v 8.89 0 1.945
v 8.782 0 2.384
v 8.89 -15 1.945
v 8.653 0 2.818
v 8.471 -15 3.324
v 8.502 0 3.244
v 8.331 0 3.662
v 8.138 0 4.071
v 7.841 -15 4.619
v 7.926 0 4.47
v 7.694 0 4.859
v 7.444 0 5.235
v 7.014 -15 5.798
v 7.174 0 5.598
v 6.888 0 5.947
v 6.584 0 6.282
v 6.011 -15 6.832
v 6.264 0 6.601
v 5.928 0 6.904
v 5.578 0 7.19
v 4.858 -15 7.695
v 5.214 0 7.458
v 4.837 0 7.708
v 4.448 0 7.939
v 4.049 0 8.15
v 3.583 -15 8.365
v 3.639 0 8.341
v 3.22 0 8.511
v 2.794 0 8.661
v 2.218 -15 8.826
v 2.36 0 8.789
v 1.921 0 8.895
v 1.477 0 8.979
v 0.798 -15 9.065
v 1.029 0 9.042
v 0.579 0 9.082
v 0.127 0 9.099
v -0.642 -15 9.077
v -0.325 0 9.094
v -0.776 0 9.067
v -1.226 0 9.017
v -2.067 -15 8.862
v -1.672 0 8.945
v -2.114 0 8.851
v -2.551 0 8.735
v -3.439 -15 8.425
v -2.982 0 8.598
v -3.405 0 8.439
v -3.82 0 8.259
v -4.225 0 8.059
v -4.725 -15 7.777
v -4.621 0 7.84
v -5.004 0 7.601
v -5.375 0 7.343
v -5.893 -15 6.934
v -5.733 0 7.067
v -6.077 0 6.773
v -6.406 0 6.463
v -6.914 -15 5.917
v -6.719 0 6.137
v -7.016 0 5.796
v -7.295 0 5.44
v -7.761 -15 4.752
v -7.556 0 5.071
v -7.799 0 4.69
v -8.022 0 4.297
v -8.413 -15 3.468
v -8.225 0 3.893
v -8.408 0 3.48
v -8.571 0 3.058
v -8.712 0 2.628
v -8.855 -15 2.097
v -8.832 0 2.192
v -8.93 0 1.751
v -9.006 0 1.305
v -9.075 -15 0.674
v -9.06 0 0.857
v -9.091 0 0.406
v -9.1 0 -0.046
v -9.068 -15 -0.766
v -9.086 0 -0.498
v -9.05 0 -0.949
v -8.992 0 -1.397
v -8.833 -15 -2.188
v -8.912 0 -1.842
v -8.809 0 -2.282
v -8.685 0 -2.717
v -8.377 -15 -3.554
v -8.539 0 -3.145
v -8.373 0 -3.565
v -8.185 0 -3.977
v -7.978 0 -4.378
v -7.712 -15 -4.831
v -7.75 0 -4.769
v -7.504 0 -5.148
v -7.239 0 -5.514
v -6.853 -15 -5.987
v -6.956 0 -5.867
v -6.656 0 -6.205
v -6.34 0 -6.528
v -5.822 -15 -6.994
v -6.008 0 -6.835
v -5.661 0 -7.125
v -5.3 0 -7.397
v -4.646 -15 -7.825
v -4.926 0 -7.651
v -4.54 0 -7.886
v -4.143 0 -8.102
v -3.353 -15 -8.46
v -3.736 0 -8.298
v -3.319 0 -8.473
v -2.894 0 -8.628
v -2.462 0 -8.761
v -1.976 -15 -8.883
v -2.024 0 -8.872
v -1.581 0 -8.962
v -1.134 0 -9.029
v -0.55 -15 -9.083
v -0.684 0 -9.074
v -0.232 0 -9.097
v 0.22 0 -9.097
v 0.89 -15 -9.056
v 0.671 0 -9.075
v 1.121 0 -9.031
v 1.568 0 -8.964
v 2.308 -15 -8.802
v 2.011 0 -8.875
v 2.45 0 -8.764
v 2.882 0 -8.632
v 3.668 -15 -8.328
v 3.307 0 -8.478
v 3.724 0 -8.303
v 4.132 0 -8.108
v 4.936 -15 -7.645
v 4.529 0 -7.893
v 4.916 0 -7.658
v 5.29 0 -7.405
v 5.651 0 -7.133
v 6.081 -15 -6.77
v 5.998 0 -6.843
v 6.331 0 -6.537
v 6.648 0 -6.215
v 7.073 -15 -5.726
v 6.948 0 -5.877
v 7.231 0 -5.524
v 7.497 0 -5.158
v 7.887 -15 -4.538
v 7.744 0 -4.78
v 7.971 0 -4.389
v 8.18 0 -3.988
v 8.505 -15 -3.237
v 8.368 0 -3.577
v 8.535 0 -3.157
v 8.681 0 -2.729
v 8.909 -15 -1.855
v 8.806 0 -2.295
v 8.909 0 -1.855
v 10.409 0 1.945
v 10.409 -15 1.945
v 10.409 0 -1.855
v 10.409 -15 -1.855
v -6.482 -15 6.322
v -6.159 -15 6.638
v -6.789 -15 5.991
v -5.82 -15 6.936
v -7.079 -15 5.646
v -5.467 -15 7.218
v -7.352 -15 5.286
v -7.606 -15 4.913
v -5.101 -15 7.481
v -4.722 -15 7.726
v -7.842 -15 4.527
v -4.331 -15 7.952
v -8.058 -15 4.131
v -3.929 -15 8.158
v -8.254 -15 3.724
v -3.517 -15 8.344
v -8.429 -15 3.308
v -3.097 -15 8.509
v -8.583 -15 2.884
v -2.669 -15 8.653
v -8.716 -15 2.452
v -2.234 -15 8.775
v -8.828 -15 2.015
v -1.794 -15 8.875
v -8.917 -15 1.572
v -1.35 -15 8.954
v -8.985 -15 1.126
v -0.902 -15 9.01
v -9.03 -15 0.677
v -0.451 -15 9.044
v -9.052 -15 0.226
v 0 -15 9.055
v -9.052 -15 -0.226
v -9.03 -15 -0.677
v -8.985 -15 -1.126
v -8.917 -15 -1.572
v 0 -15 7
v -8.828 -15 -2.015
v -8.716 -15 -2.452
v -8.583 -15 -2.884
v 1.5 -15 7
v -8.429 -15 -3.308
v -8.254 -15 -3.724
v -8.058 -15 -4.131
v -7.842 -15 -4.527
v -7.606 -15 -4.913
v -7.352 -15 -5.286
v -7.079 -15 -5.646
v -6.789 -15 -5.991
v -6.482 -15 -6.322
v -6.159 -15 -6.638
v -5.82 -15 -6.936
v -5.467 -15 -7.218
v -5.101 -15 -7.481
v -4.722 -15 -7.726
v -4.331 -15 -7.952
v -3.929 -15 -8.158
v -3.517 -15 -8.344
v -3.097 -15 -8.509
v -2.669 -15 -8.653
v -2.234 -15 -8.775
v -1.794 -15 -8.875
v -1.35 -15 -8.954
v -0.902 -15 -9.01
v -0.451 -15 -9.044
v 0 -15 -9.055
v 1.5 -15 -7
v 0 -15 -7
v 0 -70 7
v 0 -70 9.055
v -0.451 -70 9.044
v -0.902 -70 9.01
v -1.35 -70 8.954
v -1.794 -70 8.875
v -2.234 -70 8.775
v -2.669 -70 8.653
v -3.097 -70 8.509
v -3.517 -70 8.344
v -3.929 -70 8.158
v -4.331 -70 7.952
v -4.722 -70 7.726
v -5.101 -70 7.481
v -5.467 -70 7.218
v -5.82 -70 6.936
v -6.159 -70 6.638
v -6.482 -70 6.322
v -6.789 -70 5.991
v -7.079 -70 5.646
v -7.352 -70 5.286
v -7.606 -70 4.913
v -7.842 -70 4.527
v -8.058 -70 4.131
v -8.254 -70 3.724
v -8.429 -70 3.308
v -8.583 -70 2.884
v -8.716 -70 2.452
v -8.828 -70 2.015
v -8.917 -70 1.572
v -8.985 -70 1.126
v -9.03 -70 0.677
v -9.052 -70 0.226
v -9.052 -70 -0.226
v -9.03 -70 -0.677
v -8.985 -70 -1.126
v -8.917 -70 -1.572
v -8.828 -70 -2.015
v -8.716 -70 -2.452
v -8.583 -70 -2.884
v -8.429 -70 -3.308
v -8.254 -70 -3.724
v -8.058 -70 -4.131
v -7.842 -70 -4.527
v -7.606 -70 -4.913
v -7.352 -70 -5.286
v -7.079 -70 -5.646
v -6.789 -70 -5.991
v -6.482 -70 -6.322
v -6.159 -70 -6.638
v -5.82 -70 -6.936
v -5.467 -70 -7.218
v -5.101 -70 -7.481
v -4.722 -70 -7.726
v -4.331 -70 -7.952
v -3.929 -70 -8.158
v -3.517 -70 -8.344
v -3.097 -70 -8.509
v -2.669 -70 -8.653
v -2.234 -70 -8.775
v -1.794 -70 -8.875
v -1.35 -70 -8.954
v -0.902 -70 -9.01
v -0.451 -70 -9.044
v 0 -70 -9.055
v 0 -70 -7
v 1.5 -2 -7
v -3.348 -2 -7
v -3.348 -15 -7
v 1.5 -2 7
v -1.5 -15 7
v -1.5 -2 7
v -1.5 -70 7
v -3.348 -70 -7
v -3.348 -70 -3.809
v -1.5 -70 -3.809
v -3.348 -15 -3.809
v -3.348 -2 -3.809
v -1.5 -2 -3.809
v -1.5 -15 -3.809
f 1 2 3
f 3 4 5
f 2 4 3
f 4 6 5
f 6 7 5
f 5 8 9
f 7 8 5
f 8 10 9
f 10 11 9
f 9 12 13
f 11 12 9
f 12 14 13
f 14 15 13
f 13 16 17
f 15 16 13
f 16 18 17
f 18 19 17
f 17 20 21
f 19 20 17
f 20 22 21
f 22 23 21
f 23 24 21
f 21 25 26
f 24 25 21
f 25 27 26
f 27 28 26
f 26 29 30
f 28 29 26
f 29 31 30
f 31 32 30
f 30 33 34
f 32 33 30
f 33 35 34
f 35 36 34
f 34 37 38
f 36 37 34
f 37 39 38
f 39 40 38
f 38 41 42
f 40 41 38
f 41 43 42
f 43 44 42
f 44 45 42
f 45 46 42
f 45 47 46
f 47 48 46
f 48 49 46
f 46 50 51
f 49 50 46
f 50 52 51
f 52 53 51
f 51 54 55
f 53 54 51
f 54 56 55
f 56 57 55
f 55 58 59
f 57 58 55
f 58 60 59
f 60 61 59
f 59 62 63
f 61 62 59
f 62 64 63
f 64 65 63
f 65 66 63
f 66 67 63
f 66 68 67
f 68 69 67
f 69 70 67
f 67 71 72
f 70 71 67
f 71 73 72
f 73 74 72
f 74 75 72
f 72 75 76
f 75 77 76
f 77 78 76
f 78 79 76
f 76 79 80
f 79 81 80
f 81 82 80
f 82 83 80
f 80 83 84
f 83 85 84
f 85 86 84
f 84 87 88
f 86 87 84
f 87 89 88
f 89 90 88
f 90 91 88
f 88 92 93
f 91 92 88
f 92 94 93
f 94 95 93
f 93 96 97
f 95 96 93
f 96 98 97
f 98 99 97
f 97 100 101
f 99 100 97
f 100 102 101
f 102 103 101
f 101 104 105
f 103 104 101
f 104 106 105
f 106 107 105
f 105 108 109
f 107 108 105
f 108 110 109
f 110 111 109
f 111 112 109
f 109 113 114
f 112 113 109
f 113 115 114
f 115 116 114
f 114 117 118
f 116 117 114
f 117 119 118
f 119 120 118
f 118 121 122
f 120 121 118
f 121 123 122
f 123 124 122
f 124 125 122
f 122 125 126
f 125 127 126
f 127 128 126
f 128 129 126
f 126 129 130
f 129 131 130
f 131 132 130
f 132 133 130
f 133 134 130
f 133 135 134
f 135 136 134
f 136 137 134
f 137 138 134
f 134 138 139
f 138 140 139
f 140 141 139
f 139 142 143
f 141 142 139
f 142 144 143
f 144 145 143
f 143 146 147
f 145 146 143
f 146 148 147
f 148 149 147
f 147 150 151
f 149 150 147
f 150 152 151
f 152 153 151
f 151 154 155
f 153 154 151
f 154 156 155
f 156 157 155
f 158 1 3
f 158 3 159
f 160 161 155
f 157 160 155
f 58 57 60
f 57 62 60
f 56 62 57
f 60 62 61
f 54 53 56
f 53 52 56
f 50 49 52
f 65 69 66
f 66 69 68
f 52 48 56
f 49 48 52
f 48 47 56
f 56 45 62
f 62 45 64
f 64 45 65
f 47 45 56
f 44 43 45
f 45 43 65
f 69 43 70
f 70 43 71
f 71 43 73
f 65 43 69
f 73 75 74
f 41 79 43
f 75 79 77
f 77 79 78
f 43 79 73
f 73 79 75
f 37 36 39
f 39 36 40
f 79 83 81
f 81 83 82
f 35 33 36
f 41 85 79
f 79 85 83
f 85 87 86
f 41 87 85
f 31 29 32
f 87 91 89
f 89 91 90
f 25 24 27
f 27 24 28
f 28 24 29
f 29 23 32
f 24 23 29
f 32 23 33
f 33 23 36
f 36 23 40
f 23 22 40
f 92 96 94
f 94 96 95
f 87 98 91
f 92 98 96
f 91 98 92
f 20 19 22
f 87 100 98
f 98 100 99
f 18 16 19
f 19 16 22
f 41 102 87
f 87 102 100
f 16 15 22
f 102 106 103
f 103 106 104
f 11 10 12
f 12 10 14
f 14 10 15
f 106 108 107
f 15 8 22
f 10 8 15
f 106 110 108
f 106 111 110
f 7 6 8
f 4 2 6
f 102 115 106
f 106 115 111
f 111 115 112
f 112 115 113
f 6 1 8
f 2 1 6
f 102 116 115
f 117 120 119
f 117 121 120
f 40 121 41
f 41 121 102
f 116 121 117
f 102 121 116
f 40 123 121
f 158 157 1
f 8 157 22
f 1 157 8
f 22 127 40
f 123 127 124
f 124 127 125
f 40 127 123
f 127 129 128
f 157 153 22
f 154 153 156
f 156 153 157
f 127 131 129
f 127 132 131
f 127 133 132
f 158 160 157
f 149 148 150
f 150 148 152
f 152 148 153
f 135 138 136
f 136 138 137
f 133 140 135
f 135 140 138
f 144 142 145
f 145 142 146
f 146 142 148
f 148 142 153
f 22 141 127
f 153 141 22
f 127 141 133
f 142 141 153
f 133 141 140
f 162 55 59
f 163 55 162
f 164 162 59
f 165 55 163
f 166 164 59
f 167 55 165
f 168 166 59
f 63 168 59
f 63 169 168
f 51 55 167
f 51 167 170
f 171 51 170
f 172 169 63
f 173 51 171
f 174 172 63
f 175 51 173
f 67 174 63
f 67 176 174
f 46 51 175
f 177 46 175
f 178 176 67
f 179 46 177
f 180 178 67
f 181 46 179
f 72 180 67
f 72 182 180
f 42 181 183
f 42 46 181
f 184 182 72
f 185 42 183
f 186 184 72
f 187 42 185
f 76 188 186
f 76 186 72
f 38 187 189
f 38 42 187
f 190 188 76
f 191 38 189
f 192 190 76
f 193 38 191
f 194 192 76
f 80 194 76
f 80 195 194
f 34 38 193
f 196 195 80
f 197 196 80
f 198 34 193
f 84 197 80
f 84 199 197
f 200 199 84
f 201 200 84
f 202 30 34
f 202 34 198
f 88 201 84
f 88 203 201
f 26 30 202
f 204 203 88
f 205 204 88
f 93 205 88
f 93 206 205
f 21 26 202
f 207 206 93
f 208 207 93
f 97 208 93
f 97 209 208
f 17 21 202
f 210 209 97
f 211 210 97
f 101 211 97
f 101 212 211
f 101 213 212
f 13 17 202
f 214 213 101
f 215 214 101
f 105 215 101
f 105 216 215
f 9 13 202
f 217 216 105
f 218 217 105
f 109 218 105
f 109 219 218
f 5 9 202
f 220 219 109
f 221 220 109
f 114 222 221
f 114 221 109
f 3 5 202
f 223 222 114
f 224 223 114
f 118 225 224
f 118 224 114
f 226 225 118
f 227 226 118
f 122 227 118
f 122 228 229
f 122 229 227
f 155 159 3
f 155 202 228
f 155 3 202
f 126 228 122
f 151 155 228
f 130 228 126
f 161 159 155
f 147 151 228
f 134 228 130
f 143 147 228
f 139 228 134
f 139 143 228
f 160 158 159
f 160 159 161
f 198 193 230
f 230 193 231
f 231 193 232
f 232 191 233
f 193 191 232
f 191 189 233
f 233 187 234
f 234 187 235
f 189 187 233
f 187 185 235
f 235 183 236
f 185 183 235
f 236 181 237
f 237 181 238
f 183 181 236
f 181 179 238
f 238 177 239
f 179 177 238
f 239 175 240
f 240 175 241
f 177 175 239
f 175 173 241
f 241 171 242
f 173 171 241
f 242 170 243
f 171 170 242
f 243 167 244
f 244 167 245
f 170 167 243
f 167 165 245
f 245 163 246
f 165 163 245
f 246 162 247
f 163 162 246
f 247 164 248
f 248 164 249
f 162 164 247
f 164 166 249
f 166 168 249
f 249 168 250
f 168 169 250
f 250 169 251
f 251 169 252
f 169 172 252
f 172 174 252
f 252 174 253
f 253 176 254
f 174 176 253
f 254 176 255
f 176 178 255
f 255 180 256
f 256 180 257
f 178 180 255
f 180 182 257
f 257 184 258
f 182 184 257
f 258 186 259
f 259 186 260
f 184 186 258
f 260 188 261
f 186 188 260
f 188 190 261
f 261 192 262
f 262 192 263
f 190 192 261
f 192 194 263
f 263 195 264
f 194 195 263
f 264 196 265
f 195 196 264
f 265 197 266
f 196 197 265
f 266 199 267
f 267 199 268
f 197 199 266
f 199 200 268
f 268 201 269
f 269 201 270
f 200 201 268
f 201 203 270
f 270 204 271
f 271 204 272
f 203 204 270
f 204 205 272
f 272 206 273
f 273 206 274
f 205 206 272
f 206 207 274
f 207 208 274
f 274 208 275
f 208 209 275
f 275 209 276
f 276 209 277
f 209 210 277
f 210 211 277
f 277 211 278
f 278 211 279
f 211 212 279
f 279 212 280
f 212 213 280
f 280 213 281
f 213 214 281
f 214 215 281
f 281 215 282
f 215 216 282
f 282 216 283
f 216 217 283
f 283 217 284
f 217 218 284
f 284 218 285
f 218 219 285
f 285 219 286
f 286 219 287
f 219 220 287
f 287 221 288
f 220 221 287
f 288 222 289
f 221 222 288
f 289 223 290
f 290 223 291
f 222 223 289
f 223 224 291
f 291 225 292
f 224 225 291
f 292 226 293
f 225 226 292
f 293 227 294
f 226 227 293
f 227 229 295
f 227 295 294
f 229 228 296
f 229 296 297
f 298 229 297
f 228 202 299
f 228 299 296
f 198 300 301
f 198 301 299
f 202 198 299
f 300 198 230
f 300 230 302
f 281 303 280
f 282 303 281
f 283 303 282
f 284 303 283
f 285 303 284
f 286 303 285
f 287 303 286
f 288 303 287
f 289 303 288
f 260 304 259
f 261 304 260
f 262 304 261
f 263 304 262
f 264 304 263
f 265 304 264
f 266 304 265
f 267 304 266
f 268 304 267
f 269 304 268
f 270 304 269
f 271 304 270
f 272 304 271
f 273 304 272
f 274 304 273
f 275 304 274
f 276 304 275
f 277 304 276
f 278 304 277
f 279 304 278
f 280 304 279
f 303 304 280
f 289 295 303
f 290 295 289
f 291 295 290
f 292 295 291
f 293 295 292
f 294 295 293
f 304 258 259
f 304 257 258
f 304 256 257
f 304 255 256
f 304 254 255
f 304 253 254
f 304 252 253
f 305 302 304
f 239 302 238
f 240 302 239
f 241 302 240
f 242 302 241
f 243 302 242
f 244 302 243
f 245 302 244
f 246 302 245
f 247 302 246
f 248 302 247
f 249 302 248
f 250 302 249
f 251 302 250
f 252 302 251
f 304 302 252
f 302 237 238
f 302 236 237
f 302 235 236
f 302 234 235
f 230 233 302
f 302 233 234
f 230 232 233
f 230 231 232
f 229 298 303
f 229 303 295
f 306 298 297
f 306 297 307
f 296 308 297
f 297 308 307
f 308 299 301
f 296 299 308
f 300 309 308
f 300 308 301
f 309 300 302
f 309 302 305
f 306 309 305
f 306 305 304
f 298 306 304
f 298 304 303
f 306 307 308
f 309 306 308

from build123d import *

# Parameters (mm, degrees)
PAD_DEPTH    = 15
POCKET_DEPTH = 13
PAD001_DEPTH = 55


with BuildPart() as part:
    # Sketch → Pad (new body)
    with BuildSketch(Plane.XZ):
        with BuildLine():
            ThreePointArc((8.889624, 1.945402), (-9.099882, -0.046426), (8.90901, -1.854598))
            Line((10.40901, -1.854598), (8.90901, -1.854598))
            Line((10.40901, 1.945402), (10.40901, -1.854598))
            Line((8.889624, 1.945402), (10.40901, 1.945402))
        make_face()
    extrude(amount=PAD_DEPTH)

    # Sketch001 (on Face6 of Pad) → Pocket (cut)
    with BuildSketch(Plane.XZ.offset(15)):
        Polygon((-1.5, 7), (1.5, 7), (1.5, -7), (-3.348355, -7), (-3.348355, -3.808815), (-1.5, -3.808815), align=None)
    extrude(amount=-POCKET_DEPTH, mode=Mode.SUBTRACT)

    # Sketch002 (on Face5 of Pocket) → Pad001 (join)
    with BuildSketch(Plane.XZ.offset(15)):
        with BuildLine():
            Line((0, 7), (-1.5, 7))
            Line((-1.5, 7), (-1.5, -3.808815))
            Line((-1.5, -3.808815), (-3.348355, -3.808815))
            Line((-3.348355, -3.808815), (-3.348355, -7))
            Line((-3.348355, -7), (0, -7))
            Line((0, -7), (0, -9.054887))
            ThreePointArc((0, 9.054887), (-9.054887, 0), (0, -9.054887))
            Line((0, 7), (0, 9.054887))
        make_face()
    extrude(amount=PAD001_DEPTH)


solid = part.part
